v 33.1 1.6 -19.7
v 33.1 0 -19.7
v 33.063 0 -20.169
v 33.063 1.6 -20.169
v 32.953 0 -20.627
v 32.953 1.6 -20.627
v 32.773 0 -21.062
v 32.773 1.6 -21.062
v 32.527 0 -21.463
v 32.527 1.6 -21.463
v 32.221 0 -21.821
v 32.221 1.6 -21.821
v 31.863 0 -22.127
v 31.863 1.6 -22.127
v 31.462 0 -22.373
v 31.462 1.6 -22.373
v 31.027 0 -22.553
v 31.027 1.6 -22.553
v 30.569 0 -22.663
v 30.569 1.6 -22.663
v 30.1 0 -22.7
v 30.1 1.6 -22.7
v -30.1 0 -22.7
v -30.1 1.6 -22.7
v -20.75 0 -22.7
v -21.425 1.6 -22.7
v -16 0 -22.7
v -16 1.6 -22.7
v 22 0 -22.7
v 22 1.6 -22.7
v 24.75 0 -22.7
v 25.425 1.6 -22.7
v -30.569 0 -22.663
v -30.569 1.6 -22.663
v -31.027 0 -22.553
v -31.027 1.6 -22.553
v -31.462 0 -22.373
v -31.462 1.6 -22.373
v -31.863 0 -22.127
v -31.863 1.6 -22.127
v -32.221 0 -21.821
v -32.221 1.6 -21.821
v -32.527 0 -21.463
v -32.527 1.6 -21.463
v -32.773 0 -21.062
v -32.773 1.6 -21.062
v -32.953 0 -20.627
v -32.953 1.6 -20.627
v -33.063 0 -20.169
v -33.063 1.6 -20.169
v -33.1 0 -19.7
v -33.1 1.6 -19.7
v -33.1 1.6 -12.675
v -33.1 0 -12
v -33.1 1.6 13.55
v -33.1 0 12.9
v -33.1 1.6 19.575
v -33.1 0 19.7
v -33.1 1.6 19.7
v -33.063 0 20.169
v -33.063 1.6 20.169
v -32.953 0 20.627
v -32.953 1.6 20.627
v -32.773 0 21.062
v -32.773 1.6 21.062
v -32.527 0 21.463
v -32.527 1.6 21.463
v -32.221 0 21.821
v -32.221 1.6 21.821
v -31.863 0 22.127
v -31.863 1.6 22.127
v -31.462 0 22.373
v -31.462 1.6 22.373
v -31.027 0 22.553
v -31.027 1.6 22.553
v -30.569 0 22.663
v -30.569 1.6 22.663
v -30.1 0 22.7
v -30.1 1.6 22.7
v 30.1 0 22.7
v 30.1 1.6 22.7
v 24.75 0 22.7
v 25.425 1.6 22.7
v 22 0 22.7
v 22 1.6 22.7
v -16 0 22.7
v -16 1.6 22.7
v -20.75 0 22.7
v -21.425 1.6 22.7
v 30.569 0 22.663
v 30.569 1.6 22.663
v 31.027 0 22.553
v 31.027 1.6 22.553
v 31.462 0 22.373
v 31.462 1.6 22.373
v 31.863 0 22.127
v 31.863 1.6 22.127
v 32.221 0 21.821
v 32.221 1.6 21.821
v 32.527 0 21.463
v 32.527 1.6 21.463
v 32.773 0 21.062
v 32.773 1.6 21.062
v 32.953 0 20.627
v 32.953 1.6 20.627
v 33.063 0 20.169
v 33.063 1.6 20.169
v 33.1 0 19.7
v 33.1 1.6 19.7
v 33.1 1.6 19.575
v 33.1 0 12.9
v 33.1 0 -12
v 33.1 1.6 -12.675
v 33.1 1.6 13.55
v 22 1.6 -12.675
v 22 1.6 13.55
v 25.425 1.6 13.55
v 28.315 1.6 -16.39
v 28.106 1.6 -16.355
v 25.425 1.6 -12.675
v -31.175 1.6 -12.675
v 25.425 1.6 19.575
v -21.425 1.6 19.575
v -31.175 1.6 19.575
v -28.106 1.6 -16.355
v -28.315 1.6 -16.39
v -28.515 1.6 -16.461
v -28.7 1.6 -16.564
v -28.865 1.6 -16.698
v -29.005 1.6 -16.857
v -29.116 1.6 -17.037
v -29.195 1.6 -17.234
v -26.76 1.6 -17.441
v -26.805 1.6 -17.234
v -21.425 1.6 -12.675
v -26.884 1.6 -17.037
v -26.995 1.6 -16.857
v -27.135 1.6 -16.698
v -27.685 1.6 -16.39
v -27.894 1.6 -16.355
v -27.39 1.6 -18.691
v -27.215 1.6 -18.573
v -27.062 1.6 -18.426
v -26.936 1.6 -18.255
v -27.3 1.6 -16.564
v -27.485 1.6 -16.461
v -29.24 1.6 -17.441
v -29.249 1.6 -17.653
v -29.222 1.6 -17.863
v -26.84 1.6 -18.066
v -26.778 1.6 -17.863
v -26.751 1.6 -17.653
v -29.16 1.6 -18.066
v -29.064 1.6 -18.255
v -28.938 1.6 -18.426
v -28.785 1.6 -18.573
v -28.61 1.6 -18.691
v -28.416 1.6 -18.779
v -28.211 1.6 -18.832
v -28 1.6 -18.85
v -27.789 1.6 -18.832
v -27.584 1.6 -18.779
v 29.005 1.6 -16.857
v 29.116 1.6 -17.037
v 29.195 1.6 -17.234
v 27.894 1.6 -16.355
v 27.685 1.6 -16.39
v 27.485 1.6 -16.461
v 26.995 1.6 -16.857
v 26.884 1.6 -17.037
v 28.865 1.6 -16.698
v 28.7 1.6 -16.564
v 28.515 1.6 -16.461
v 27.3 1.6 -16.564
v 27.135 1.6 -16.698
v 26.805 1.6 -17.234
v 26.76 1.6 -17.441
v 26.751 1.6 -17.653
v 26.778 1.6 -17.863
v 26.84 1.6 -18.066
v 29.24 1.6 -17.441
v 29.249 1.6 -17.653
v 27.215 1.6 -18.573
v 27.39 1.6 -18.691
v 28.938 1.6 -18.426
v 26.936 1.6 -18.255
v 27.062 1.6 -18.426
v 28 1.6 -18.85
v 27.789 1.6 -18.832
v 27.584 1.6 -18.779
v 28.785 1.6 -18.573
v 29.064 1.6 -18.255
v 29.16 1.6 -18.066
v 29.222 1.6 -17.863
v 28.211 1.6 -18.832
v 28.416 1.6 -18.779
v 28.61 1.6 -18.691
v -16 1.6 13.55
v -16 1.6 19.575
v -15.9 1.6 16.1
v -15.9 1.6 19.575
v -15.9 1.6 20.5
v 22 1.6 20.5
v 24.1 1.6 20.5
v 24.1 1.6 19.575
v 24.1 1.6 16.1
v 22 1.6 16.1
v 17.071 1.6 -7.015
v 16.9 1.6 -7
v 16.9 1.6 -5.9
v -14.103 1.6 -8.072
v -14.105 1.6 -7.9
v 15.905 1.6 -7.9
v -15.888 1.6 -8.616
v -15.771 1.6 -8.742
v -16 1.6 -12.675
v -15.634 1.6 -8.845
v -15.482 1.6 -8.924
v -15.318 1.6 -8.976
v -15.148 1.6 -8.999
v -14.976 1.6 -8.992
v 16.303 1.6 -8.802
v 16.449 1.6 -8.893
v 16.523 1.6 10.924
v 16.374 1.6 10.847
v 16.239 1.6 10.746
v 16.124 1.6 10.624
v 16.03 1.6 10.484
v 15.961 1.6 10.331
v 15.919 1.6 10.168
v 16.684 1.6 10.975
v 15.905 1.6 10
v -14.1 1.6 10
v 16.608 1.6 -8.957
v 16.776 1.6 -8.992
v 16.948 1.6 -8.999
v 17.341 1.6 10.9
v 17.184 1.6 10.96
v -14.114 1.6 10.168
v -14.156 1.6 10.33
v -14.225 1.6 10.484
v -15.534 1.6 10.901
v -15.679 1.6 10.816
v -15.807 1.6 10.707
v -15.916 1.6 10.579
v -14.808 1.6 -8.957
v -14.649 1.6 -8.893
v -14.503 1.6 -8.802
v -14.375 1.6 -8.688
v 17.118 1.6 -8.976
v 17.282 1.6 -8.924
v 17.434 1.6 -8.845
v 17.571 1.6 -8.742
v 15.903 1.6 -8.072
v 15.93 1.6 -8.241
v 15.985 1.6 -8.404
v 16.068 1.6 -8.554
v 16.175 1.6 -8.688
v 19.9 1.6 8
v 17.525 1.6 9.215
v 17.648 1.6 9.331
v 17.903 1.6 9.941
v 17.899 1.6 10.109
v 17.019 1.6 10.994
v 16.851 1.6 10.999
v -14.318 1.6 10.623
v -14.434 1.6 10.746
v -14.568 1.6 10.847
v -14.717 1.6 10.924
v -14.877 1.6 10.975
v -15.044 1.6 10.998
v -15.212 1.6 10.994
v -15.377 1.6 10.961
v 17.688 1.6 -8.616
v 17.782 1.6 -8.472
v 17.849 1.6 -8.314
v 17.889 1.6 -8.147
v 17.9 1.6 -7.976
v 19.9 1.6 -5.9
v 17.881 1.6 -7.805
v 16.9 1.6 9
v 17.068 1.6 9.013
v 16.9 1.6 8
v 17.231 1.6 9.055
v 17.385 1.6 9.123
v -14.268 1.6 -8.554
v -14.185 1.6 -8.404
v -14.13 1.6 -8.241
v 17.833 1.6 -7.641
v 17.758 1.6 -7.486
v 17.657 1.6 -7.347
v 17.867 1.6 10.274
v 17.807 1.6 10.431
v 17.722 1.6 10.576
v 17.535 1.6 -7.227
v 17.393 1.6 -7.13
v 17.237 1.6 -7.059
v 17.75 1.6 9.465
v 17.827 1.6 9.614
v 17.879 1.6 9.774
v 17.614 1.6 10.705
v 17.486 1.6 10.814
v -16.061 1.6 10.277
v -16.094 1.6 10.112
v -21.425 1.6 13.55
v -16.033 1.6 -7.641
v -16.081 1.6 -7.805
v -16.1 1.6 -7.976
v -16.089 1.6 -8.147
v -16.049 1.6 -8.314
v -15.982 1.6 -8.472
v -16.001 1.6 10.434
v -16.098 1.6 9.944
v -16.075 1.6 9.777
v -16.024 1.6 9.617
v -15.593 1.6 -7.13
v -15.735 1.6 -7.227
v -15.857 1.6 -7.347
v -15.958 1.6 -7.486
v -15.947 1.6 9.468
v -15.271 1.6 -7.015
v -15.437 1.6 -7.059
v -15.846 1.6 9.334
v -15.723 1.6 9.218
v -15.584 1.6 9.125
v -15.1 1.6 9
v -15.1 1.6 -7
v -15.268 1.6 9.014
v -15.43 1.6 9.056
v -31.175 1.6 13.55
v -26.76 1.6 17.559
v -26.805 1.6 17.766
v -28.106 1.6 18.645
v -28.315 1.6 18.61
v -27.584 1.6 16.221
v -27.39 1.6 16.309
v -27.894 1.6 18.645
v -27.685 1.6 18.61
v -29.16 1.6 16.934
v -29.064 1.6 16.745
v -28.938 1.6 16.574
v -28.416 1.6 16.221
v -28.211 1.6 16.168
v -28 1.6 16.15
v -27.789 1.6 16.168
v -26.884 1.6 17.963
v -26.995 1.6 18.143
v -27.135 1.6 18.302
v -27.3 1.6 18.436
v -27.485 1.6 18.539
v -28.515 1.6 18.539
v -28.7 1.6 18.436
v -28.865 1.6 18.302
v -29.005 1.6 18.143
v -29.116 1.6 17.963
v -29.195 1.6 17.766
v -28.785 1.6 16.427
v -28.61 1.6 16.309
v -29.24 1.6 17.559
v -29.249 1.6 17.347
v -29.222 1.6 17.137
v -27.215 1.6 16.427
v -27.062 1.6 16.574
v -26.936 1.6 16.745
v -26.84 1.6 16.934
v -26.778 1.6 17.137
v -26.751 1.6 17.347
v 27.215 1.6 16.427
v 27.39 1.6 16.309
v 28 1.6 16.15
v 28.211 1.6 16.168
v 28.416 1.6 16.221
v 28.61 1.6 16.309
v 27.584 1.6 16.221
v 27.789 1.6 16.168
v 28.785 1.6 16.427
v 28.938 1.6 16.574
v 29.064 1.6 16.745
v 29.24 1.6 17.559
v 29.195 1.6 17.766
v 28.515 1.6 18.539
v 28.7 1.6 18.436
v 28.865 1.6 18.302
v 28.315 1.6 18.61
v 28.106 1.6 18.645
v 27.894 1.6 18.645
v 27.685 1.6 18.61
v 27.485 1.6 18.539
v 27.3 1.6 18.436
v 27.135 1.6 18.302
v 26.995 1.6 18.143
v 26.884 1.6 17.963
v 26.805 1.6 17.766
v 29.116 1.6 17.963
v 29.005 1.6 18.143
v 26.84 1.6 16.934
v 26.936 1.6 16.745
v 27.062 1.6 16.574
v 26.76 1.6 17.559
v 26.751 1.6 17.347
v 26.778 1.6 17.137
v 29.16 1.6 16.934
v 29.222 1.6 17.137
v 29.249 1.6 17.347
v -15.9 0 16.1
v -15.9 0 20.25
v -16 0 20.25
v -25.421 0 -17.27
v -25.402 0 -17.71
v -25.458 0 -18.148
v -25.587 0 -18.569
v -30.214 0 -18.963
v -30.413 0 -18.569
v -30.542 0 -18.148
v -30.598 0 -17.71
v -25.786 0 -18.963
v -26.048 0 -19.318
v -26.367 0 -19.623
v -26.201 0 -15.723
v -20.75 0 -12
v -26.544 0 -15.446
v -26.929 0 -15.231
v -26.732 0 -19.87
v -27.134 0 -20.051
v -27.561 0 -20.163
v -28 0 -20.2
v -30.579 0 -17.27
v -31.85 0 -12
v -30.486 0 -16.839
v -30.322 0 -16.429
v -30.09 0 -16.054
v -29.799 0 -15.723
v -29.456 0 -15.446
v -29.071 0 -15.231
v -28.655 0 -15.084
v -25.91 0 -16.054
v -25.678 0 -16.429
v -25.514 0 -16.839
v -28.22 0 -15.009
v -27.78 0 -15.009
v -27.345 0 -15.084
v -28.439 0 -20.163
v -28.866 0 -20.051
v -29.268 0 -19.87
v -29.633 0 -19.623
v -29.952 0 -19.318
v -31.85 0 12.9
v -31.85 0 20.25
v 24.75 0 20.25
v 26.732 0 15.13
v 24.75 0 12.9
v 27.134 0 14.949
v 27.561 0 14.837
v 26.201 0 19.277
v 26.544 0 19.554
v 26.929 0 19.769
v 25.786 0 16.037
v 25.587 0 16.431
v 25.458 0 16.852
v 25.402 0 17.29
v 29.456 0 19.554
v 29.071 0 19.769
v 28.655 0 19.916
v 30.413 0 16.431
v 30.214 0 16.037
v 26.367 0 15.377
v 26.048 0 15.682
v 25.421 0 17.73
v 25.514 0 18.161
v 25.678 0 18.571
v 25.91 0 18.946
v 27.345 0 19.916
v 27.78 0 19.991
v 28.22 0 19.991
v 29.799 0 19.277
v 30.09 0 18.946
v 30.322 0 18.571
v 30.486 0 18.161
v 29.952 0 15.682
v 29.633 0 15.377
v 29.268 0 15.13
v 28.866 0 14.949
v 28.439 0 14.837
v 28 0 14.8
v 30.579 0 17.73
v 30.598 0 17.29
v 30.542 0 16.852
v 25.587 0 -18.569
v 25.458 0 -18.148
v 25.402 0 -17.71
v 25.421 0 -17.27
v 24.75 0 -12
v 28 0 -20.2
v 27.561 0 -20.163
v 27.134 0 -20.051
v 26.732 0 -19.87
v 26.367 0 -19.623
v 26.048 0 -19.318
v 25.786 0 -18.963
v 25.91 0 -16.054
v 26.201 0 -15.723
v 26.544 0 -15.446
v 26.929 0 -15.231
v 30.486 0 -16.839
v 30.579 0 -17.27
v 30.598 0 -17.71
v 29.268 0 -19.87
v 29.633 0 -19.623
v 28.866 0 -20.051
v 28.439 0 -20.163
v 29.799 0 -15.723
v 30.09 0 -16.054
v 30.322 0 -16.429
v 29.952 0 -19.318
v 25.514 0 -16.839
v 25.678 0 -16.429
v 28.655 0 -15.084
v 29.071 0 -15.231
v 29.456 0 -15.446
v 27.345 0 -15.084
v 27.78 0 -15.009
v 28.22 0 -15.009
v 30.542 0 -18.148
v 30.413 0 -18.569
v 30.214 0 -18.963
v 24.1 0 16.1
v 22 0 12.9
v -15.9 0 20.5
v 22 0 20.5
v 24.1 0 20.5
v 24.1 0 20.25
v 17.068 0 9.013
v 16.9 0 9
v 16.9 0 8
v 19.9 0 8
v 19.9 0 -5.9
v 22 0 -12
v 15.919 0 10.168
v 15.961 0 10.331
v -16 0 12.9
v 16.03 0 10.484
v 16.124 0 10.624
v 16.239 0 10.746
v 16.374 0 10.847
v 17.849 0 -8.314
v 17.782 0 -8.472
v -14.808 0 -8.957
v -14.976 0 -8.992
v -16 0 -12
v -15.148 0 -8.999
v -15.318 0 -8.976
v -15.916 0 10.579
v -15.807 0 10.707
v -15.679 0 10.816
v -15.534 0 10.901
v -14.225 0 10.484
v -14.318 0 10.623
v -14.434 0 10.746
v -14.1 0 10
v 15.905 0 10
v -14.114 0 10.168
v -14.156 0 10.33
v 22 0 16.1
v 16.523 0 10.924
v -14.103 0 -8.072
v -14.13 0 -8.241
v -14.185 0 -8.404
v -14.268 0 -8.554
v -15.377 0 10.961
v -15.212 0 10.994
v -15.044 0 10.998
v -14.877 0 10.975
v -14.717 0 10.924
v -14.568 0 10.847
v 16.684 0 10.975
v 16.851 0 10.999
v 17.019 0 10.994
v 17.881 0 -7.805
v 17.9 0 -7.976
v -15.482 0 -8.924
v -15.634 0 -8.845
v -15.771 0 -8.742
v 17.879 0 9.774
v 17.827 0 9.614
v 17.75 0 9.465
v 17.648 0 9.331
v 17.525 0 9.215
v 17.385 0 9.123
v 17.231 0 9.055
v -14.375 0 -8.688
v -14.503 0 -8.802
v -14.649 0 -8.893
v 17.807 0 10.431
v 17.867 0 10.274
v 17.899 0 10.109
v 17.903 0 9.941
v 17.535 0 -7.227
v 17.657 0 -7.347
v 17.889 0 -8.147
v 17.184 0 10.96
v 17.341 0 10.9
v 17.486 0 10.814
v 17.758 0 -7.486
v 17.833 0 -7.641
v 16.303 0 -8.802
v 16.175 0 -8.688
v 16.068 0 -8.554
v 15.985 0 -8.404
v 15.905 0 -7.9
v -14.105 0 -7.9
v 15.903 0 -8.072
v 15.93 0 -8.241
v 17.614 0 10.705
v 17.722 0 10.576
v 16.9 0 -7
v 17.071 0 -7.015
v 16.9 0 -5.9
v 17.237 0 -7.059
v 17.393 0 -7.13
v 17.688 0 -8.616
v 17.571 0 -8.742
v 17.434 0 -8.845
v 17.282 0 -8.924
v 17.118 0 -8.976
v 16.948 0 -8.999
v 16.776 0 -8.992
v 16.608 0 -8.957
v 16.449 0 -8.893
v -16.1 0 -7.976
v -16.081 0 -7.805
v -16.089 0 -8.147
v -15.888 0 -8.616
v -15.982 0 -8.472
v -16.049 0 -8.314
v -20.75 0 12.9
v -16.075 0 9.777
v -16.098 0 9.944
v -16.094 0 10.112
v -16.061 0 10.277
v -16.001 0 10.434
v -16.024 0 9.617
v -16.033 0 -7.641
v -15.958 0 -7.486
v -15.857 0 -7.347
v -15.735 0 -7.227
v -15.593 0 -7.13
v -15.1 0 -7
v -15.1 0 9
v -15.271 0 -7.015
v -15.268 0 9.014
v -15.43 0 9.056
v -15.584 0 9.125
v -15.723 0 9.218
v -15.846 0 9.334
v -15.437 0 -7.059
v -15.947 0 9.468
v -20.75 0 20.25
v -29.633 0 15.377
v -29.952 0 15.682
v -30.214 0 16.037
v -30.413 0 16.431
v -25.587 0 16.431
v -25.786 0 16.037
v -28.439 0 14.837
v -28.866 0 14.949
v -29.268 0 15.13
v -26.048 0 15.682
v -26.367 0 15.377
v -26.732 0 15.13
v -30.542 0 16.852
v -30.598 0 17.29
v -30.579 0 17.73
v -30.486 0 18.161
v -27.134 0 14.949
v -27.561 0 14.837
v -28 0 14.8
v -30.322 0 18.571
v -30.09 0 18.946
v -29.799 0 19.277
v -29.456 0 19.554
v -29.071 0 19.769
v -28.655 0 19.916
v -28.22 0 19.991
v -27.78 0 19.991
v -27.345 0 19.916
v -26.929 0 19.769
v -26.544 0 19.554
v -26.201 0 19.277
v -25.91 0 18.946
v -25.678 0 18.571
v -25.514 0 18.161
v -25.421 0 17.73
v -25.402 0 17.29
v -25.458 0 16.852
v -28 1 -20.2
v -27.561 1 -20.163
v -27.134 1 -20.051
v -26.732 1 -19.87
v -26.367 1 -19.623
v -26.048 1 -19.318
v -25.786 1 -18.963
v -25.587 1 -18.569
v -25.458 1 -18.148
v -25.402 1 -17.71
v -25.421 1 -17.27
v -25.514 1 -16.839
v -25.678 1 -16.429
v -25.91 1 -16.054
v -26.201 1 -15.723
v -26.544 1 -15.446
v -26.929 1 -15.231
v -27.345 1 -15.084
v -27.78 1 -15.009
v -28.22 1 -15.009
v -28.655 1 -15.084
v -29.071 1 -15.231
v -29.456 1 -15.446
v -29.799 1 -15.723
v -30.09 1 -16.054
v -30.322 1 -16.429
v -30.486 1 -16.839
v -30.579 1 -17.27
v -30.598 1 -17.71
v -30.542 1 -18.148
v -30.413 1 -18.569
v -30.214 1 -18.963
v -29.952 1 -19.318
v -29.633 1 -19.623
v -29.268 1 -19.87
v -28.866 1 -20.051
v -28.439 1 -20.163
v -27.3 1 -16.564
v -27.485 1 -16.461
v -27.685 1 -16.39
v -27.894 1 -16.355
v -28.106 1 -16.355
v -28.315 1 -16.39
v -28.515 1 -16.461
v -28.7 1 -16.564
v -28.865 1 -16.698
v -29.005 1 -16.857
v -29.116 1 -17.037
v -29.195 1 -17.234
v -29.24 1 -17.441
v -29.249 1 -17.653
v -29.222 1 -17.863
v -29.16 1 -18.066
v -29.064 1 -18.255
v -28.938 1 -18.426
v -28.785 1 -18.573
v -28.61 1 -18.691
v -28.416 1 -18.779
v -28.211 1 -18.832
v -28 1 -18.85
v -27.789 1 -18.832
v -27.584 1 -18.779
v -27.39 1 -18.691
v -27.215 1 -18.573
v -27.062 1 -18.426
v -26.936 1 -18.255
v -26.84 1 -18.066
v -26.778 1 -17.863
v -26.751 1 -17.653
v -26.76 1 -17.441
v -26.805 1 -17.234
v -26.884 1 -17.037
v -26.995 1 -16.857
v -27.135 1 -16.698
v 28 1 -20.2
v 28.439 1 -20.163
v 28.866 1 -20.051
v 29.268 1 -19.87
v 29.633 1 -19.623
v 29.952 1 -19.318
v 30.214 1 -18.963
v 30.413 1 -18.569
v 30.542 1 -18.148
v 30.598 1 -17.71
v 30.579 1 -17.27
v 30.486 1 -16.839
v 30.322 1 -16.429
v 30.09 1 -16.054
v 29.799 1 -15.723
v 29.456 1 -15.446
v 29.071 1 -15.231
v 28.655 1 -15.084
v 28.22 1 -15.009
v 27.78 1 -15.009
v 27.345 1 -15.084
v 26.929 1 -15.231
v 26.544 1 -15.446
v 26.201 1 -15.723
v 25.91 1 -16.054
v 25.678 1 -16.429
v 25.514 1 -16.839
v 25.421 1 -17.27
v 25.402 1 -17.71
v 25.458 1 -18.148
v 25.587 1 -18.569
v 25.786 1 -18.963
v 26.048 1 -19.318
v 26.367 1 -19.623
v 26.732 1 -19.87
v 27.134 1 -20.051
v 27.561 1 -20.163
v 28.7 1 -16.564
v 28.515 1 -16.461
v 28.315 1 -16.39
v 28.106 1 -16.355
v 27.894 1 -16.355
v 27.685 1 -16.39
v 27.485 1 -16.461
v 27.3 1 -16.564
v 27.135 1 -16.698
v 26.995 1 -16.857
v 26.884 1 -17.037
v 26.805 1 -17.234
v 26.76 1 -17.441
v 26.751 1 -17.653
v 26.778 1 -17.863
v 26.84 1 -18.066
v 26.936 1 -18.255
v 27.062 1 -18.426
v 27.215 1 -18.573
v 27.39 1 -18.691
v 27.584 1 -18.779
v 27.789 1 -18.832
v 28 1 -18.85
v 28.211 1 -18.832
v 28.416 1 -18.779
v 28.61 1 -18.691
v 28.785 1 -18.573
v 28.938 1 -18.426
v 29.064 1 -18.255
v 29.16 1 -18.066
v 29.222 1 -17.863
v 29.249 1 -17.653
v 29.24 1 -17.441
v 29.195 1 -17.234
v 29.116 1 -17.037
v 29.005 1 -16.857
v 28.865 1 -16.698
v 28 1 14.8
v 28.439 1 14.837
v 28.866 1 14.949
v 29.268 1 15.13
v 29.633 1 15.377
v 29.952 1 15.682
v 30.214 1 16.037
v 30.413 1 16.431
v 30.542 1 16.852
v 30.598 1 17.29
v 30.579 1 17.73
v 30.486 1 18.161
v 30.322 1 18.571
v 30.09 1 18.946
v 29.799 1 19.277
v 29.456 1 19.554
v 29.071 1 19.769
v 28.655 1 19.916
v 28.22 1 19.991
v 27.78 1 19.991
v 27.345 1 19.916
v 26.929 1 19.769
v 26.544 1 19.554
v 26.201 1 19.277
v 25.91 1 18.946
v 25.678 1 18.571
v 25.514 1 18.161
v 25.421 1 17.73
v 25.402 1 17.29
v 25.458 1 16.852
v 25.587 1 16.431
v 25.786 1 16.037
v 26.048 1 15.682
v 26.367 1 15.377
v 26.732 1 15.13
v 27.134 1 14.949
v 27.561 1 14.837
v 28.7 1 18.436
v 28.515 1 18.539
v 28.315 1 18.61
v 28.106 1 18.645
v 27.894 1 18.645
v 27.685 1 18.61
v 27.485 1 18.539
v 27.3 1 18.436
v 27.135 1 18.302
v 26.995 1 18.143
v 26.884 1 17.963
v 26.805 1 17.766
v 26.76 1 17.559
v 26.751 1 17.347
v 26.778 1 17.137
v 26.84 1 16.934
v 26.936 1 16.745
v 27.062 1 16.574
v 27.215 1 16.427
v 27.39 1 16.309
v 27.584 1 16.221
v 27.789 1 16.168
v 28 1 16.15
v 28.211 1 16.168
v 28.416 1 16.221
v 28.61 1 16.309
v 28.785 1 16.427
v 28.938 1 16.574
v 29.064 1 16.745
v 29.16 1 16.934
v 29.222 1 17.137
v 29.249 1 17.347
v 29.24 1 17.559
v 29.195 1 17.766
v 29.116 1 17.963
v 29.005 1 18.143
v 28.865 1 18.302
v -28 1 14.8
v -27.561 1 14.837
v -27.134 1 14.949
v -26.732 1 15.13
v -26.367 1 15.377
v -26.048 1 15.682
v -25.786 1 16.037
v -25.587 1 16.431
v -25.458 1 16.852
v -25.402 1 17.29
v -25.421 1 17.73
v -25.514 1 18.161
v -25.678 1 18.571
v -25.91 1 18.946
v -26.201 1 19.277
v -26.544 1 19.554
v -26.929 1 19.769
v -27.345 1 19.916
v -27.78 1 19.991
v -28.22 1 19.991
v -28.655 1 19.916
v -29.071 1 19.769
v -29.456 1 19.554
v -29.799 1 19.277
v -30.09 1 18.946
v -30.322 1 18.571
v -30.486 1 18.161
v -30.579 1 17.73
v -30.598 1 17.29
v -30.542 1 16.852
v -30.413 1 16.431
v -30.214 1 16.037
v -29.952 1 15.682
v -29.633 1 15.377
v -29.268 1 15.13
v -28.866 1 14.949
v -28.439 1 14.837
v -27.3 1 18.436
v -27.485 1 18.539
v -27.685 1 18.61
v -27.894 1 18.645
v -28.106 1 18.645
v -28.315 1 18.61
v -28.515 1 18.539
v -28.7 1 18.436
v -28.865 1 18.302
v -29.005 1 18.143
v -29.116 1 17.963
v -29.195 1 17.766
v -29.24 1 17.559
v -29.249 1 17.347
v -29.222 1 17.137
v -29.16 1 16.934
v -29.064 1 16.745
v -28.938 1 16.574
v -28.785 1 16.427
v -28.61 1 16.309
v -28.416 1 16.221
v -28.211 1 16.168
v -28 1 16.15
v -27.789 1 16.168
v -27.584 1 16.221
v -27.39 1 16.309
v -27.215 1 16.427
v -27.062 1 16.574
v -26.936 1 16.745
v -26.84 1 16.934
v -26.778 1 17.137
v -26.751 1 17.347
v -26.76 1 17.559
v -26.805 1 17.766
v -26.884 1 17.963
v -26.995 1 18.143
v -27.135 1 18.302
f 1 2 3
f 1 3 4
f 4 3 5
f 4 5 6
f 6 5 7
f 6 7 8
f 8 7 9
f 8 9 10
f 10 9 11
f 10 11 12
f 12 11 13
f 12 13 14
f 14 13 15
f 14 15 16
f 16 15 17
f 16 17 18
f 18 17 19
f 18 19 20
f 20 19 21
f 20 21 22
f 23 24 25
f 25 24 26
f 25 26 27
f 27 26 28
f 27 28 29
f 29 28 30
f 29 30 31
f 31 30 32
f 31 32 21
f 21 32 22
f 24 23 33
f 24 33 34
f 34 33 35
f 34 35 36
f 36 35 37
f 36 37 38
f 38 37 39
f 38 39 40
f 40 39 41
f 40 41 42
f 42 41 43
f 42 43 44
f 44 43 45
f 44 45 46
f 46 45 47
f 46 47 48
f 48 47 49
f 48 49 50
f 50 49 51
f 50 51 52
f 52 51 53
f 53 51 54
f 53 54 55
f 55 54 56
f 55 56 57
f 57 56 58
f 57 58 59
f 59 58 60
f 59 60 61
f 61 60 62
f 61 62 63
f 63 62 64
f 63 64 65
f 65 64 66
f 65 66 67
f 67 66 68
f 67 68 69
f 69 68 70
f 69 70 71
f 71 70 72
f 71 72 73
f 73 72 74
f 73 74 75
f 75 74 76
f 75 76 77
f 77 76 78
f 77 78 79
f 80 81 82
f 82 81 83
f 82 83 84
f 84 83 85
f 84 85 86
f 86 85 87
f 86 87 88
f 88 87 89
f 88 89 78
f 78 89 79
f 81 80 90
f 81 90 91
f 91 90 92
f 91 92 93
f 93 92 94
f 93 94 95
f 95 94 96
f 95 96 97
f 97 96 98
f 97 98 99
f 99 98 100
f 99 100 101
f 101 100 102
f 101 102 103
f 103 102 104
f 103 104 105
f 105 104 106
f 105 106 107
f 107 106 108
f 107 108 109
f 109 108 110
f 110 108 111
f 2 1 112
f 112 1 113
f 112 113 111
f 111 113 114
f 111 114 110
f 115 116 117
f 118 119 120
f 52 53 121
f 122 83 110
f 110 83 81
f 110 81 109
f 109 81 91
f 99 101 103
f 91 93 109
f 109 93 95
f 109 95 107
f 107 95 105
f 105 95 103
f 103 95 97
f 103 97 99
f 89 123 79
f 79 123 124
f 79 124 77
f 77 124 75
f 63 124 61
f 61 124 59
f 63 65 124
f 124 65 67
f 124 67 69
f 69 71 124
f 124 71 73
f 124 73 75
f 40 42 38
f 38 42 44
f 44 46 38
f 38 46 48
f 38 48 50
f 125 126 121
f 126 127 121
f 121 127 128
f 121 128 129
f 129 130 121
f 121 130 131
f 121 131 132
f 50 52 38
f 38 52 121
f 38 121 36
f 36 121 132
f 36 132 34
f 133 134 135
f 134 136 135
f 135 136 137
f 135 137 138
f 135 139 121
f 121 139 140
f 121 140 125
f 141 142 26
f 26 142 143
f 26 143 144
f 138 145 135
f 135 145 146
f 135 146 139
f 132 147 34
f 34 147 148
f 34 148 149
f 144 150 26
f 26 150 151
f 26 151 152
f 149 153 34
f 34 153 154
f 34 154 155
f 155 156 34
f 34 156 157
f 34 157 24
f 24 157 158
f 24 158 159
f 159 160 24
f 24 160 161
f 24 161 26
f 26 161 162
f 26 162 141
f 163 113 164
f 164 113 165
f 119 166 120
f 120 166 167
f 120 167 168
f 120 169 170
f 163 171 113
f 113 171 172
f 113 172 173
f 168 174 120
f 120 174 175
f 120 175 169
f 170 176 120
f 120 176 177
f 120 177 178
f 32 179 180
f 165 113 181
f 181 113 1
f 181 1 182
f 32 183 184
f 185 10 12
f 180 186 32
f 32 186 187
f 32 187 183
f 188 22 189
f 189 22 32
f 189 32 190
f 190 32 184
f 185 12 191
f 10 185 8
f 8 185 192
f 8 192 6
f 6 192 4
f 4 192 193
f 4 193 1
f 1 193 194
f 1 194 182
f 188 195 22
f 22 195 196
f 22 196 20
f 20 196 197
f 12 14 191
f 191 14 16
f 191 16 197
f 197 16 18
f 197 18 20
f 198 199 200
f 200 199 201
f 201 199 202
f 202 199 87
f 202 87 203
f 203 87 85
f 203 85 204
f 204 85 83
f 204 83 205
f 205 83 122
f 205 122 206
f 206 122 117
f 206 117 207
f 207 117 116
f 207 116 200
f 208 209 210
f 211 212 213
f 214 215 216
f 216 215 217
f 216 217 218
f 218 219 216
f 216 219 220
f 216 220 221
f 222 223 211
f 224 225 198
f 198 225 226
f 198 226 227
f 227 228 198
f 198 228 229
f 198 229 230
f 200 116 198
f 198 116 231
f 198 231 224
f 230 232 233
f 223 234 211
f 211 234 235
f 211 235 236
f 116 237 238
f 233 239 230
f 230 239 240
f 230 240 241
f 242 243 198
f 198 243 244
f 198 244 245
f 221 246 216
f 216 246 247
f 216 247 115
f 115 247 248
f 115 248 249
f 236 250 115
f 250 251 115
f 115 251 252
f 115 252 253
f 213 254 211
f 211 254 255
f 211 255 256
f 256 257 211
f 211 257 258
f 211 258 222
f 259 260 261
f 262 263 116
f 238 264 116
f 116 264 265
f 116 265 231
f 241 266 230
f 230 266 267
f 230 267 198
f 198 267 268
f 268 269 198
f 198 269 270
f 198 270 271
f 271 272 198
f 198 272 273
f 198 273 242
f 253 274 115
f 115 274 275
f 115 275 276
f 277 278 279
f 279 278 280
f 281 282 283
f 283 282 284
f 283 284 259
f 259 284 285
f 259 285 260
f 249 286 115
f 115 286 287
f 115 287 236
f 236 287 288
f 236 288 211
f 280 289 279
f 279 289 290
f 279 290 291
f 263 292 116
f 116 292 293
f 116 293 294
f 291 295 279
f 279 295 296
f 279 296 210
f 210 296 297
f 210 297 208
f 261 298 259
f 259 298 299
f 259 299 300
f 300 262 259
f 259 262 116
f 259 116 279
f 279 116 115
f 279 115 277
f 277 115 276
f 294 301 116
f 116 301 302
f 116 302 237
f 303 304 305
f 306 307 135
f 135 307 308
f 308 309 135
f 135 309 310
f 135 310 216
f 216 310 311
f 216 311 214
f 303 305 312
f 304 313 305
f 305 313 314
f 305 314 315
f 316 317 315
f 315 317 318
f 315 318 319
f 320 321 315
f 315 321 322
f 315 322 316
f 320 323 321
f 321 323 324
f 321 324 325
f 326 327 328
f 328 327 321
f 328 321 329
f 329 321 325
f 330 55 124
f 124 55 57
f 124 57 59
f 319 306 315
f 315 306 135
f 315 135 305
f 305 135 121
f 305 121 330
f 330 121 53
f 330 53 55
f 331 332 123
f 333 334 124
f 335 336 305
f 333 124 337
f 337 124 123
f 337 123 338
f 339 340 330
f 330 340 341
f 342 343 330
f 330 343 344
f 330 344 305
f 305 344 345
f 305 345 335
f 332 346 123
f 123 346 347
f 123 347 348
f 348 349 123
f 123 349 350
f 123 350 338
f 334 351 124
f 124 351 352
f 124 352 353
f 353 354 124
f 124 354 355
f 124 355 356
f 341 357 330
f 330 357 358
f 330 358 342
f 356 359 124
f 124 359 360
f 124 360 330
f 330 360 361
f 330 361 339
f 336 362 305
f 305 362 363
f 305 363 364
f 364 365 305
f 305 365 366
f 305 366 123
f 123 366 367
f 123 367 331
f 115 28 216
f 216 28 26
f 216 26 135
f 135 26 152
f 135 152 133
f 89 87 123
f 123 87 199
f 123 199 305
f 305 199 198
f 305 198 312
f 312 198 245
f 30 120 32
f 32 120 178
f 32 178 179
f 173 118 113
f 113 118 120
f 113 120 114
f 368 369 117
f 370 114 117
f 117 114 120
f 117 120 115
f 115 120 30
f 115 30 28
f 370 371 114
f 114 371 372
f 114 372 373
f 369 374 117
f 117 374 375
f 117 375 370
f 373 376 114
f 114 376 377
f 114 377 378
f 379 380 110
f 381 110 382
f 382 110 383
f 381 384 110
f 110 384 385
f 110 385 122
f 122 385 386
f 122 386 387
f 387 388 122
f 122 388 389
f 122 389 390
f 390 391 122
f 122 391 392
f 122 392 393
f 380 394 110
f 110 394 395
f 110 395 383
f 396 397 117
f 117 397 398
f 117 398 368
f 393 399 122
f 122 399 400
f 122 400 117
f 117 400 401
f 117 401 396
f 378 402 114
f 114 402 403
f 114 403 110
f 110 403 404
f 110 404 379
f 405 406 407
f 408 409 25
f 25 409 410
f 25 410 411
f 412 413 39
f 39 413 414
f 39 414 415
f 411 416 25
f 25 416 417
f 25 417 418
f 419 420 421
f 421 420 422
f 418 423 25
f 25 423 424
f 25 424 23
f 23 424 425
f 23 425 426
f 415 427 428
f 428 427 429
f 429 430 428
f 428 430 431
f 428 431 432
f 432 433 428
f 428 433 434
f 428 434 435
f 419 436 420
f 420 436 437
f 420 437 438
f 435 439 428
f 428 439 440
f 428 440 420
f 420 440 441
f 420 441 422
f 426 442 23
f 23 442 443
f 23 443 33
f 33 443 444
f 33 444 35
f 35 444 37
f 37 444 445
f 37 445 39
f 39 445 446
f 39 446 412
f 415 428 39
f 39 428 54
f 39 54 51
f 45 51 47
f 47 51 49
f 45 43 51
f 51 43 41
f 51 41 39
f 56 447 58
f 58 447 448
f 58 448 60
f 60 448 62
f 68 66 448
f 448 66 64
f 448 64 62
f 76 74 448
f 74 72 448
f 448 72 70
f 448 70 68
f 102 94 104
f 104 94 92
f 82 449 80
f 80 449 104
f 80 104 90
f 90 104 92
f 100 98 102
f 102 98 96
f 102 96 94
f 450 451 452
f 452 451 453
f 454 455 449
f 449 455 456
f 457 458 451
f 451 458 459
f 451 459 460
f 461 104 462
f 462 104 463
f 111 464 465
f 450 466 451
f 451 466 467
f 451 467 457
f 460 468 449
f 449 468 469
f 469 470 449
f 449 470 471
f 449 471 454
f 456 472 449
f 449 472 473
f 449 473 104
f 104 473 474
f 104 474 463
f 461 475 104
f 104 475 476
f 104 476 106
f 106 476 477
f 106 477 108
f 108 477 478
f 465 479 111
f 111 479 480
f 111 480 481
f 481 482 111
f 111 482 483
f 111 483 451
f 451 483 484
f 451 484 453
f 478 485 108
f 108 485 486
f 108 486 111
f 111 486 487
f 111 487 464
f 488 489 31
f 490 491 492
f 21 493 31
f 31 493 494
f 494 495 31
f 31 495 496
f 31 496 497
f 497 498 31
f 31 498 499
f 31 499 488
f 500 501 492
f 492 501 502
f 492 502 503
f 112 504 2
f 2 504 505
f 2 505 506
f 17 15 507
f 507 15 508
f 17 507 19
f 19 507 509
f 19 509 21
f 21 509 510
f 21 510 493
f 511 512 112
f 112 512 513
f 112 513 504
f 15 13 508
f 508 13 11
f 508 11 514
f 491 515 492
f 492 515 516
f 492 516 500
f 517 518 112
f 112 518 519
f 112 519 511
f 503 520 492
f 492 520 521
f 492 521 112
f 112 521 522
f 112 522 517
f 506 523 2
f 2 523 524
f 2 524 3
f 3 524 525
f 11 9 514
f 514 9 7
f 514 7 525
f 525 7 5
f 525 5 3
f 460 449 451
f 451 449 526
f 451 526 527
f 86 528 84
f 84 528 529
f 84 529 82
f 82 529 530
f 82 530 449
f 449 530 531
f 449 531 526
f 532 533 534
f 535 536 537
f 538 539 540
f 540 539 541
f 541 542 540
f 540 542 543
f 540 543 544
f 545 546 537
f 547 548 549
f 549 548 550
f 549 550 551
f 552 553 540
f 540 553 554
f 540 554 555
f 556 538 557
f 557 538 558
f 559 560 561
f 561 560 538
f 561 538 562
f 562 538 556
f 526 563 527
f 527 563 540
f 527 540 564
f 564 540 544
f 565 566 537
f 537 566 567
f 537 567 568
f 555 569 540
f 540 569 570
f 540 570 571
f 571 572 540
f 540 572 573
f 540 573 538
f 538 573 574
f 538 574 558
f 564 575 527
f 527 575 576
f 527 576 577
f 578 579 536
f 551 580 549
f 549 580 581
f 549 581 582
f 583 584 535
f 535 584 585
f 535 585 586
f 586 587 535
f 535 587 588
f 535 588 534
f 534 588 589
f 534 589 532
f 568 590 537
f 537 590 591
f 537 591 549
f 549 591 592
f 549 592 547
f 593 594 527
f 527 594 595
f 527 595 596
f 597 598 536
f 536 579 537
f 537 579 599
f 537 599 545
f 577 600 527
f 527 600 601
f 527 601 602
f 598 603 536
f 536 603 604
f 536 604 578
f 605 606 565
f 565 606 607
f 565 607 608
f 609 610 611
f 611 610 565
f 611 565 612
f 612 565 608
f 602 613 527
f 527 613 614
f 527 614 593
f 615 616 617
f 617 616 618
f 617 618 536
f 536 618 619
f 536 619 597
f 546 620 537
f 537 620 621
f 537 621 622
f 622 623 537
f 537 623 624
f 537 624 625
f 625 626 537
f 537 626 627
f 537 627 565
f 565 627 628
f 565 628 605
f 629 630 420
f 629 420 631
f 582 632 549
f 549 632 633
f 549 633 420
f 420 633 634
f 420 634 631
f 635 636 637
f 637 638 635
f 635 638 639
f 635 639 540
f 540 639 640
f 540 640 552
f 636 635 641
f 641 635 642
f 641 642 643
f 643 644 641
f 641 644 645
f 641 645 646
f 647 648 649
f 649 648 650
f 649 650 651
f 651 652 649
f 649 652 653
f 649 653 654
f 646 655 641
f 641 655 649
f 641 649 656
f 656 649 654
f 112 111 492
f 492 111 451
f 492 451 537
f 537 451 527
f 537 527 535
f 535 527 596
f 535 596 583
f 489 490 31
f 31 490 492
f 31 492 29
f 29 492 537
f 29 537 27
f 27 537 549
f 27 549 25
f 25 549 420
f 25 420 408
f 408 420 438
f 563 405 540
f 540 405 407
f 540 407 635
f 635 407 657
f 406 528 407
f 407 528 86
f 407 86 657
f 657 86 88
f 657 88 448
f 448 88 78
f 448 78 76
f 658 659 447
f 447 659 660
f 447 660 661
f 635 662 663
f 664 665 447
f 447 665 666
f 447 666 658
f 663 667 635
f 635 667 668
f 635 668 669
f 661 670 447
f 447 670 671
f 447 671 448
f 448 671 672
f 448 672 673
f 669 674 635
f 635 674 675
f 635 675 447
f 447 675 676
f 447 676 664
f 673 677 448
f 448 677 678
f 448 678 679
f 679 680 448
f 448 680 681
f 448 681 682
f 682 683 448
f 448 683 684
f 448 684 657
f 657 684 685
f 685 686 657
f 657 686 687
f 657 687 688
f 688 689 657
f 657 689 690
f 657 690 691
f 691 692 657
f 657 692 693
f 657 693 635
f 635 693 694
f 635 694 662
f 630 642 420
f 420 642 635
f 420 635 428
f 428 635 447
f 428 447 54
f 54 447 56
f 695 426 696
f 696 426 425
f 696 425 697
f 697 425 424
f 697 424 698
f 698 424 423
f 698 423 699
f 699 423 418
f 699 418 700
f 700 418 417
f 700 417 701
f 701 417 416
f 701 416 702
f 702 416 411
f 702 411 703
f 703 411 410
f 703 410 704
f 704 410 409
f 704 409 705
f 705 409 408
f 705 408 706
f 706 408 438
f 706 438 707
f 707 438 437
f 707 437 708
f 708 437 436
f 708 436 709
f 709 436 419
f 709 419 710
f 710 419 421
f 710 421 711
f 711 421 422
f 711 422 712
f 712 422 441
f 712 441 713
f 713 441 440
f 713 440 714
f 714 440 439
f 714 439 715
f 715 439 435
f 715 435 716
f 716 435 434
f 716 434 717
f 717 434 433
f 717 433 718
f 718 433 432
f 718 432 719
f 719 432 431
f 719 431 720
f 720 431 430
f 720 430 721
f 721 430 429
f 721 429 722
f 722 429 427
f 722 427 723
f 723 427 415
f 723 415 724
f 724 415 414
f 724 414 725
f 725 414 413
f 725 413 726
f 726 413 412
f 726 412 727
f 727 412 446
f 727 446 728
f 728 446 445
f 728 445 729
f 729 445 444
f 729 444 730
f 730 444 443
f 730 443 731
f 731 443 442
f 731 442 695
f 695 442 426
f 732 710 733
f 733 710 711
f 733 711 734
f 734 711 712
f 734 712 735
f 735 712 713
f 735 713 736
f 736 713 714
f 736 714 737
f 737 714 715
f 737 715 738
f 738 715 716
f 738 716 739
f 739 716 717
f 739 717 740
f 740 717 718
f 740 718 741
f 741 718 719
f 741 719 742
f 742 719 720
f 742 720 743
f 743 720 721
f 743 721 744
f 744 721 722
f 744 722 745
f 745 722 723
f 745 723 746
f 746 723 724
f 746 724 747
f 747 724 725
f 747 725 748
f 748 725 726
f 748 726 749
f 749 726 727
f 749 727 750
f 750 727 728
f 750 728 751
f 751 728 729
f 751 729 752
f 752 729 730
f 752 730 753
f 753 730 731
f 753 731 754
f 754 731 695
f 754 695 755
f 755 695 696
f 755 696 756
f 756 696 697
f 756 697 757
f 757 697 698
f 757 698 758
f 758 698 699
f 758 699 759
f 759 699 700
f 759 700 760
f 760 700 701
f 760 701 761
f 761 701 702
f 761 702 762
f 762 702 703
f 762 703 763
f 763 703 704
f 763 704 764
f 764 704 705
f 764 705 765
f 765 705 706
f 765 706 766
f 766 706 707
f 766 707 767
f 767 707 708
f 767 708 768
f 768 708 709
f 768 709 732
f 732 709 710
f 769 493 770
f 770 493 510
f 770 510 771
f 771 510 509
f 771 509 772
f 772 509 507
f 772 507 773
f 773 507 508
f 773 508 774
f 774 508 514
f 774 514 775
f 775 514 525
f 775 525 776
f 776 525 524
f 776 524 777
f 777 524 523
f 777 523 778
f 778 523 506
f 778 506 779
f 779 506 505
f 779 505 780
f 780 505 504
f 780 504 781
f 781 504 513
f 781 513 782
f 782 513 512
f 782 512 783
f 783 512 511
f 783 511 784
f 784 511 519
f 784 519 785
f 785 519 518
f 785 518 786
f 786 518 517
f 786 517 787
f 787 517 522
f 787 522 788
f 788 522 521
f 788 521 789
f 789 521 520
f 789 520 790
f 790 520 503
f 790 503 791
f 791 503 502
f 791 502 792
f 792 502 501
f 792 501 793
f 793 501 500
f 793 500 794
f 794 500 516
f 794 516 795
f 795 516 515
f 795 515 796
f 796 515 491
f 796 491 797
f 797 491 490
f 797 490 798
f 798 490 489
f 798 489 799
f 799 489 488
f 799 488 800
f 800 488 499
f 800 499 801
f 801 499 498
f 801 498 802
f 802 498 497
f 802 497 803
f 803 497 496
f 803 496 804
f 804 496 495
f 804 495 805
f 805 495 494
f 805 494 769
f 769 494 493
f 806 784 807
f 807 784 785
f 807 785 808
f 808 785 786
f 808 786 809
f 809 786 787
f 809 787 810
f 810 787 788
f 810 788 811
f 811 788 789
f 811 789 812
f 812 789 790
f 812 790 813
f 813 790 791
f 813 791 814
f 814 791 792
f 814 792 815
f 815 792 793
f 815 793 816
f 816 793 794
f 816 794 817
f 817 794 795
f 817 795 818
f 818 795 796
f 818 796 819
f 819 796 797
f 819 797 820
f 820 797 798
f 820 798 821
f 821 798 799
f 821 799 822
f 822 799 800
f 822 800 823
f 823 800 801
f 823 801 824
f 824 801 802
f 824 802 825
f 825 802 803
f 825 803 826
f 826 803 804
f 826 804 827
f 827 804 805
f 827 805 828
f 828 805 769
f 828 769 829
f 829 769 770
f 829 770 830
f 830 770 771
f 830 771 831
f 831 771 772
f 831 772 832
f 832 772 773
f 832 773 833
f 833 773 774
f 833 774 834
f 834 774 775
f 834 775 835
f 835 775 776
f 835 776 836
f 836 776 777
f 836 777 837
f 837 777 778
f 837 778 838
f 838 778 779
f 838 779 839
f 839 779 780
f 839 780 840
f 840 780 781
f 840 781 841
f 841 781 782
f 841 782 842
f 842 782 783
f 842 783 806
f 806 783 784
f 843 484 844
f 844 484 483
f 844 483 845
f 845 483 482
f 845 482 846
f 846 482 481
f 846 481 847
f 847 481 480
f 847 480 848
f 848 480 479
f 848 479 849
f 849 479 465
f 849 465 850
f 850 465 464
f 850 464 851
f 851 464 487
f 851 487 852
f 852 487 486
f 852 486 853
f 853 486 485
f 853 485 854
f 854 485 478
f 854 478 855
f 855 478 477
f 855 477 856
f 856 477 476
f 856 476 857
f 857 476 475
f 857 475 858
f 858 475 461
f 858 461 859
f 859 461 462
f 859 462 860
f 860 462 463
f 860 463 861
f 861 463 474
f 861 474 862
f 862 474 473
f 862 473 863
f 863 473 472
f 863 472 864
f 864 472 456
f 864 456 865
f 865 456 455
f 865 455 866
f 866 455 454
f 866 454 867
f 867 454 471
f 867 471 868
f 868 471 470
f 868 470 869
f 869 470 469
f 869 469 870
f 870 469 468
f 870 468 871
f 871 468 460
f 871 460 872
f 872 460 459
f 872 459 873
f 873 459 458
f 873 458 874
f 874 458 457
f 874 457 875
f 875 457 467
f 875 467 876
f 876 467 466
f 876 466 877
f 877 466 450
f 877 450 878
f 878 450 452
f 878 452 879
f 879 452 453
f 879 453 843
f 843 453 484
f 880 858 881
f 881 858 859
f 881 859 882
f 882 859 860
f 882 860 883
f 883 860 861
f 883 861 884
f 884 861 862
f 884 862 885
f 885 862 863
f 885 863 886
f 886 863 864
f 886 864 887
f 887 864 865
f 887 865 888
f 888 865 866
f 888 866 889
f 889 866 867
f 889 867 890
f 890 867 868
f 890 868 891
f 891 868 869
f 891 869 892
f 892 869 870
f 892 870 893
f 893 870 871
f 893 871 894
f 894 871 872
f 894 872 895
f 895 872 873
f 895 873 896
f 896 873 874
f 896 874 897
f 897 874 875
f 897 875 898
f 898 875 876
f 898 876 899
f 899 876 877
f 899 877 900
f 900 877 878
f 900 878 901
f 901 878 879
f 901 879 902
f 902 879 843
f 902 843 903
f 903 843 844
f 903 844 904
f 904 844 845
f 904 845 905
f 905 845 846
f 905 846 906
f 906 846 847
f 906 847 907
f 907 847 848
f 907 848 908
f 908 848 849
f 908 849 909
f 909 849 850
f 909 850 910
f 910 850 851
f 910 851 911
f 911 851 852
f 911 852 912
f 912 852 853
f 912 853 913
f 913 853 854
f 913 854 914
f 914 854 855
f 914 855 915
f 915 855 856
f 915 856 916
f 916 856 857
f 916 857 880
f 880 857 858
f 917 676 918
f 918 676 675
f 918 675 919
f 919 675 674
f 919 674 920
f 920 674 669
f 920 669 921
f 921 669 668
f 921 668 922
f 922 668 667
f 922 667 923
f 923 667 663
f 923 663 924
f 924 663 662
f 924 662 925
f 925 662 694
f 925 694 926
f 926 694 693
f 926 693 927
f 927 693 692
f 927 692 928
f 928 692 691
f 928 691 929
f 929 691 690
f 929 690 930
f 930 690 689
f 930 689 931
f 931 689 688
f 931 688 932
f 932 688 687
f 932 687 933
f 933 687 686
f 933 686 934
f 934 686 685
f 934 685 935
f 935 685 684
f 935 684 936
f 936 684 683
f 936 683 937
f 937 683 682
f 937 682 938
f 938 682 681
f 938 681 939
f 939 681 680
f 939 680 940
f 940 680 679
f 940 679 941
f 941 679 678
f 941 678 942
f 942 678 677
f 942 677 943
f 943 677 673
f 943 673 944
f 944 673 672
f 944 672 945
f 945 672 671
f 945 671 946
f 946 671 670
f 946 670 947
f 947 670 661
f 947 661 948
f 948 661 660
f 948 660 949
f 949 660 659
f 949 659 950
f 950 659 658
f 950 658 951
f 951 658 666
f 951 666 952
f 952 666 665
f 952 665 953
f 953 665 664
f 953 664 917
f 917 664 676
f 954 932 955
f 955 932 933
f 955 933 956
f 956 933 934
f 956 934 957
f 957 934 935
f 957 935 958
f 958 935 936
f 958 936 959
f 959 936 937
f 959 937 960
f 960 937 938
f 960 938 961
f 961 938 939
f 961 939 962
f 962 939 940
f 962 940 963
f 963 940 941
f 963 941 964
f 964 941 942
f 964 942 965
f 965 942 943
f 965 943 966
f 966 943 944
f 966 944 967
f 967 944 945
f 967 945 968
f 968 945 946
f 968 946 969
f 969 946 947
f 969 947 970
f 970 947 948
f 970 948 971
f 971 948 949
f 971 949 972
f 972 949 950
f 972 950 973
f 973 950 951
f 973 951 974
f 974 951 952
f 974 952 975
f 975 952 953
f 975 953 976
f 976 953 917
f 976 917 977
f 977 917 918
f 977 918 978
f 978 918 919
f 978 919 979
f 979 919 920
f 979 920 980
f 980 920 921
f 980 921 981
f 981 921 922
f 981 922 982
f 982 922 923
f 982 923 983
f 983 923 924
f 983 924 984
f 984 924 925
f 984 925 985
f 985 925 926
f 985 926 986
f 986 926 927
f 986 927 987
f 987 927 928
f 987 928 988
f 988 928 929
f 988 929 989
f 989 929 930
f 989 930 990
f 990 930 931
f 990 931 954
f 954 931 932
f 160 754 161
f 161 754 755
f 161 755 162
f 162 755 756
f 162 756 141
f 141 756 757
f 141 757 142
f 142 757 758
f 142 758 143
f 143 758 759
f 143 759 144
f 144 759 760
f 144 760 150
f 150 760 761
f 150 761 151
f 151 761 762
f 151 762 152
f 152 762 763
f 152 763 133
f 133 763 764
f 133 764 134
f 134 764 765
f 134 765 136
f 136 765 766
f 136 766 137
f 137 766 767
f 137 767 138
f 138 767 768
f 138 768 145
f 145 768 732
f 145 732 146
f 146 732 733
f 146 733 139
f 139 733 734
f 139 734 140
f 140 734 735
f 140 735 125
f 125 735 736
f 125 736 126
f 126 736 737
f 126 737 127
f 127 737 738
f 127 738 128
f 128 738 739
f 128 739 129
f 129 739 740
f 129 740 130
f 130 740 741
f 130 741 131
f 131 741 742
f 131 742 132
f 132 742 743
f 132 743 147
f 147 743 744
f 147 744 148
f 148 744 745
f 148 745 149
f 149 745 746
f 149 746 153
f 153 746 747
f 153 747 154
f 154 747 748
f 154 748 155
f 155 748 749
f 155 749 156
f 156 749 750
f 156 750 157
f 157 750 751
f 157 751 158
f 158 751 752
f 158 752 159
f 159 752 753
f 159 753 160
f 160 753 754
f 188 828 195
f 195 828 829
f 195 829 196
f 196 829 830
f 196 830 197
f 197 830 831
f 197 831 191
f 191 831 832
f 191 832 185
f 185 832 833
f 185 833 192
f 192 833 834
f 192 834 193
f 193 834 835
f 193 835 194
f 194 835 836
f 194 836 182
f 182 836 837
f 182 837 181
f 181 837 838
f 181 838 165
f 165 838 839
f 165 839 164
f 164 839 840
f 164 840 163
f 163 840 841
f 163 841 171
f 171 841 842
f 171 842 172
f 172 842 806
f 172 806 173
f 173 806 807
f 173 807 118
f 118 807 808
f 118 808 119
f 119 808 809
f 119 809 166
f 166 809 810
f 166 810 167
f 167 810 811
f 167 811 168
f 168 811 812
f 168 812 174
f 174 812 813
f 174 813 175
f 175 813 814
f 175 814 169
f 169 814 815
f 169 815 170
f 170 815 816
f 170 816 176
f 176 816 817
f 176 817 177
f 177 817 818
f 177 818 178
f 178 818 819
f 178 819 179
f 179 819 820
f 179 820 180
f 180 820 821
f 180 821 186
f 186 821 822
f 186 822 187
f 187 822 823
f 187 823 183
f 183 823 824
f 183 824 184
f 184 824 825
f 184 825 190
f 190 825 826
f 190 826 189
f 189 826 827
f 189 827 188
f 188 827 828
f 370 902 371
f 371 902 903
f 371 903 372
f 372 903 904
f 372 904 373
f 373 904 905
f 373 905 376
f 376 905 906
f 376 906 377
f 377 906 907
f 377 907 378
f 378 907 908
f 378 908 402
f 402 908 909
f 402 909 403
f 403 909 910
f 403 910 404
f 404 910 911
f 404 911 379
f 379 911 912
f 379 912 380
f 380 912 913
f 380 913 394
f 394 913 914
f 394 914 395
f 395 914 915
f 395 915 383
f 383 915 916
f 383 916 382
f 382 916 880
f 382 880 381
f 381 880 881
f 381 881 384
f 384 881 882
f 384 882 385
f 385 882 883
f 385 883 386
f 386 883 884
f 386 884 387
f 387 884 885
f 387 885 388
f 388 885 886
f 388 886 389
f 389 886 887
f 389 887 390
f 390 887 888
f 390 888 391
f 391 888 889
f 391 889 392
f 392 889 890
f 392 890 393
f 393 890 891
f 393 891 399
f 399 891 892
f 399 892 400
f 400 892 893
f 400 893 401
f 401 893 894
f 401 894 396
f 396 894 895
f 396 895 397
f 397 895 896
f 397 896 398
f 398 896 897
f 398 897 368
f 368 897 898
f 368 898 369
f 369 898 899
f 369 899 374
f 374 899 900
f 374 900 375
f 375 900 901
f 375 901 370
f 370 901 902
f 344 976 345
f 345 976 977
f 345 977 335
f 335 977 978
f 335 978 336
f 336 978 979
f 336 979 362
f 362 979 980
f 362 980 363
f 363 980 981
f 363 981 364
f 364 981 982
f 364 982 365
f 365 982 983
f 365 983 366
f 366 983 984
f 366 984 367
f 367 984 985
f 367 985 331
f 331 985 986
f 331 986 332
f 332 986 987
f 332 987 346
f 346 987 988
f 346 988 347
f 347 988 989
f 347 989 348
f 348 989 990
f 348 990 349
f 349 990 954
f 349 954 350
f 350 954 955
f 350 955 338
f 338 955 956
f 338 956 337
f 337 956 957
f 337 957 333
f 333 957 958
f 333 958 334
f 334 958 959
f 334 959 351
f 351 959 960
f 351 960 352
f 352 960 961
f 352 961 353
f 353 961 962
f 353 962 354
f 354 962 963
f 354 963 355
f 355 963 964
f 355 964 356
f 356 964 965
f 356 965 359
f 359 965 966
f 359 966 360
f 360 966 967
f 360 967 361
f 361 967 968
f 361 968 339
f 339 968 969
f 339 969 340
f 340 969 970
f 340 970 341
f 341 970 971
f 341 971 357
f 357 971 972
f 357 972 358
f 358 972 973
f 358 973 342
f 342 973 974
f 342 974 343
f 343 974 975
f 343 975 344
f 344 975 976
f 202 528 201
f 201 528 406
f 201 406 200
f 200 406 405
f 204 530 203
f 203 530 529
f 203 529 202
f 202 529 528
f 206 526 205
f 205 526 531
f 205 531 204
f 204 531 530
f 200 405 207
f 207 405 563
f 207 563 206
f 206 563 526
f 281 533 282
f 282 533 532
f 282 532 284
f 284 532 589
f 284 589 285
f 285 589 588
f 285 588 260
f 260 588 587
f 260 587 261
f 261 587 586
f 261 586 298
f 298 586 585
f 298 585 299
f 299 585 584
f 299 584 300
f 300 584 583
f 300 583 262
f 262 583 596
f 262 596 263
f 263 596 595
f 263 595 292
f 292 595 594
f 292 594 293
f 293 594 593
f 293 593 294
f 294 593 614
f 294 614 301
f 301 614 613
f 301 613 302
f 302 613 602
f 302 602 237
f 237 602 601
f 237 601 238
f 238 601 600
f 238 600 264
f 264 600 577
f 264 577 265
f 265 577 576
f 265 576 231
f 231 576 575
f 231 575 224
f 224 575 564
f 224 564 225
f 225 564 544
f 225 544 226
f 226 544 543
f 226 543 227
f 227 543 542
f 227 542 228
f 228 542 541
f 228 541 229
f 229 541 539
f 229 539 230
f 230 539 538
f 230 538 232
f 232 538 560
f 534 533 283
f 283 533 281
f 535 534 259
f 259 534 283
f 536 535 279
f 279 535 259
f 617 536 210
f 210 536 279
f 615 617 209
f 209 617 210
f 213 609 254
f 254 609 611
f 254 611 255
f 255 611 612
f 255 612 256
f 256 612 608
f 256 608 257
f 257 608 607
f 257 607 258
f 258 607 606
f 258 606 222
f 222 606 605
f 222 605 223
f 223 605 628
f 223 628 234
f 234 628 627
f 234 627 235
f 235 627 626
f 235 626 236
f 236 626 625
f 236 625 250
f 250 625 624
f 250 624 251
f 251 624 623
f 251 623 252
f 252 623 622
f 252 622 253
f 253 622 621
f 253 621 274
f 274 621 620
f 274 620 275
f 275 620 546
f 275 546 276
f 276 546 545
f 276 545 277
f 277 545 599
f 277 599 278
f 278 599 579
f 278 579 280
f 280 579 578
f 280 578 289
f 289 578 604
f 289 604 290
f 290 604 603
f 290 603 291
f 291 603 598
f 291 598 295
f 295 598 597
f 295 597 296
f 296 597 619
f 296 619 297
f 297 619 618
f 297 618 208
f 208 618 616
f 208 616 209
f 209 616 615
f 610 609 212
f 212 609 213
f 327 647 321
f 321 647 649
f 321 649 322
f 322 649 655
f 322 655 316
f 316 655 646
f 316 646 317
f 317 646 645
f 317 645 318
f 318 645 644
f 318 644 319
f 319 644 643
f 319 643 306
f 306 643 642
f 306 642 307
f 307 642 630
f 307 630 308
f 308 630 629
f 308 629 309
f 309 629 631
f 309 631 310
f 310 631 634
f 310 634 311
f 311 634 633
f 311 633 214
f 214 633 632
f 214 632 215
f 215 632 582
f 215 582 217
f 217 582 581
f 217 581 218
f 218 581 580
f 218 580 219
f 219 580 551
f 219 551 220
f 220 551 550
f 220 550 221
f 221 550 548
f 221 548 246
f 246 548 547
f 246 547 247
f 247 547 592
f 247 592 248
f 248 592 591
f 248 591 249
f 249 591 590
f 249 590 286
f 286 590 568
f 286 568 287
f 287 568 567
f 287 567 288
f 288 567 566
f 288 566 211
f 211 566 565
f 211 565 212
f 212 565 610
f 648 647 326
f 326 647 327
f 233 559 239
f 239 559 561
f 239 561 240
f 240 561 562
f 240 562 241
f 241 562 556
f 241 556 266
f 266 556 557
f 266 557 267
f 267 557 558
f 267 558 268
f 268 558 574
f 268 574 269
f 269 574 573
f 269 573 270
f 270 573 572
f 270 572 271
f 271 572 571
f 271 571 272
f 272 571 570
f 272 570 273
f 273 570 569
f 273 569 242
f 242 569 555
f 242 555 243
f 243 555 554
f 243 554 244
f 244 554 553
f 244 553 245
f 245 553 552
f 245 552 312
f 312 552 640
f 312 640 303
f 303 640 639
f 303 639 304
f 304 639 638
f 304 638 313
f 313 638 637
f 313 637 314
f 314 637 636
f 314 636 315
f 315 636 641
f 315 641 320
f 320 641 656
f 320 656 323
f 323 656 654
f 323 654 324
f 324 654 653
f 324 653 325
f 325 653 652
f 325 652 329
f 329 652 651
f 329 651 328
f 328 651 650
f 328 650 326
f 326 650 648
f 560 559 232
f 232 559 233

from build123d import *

# Parameters (mm, degrees)
EXTRUDE_1_DEPTH       = 1.6
SKETCH_5_R            = 2.6
CUT_EXTRUDE_855_DEPTH = 1
CUT_EXTRUDE_992_REACH = 42.148
SKETCH_7_R            = 1.25
CUT_EXTRUDE_1_REACH   = 42.168
SKETCH_9_W            = 40
SKETCH_9_H            = 4.4


with BuildPart() as part:
    # 草图1 → 凸台-拉伸1 (new body)
    with BuildSketch(Plane(origin=(0, 0, 0), x_dir=(1, 0, 0), z_dir=(0, 1, 0))):
        with BuildLine():
            Line((-30.1, -22.7), (30.1, -22.7))
            ThreePointArc((30.1, -22.7), (32.221320344, -21.821320344), (33.1, -19.7))
            Line((33.1, -19.7), (33.1, 19.7))
            ThreePointArc((33.1, 19.7), (32.221320344, 21.821320344), (30.1, 22.7))
            Line((30.1, 22.7), (-30.1, 22.7))
            ThreePointArc((-30.1, 22.7), (-32.221320344, 21.821320344), (-33.1, 19.7))
            Line((-33.1, 19.7), (-33.1, -19.7))
            ThreePointArc((-33.1, -19.7), (-32.221320344, -21.821320344), (-30.1, -22.7))
        make_face()
    extrude(amount=EXTRUDE_1_DEPTH)

    # 草图5 → Cut-Extrude 855 (cut)
    with BuildSketch(Plane.XZ):
        with Locations(Location((-28, -17.6, 0), (0, 0, 270))):
            Circle(SKETCH_5_R)
        with Locations(Location((28, -17.6, 0), (0, 0, 270))):
            Circle(SKETCH_5_R)
        with Locations(Location((28, 17.4, 0), (0, 0, 270))):
            Circle(SKETCH_5_R)
        with Locations(Location((-28, 17.4, 0), (0, 0, 270))):
            Circle(SKETCH_5_R)
    extrude(amount=-CUT_EXTRUDE_855_DEPTH, mode=Mode.SUBTRACT)

    # 草图7 → Cut-Extrude 992 (cut, up to next)
    with BuildSketch(Plane.XZ.offset(-1), mode=Mode.PRIVATE) as cut_extrude_992_sk1:
        with Locations(Location((-28, -17.6, 0), (0, 0, 270))):
            Circle(SKETCH_7_R)
    cut_extrude_992_tool1 = extrude(cut_extrude_992_sk1.sketch, amount=-CUT_EXTRUDE_992_REACH, mode=Mode.PRIVATE) & part.part
    # 草图7 → Cut-Extrude 992 (cut, up to next)
    with BuildSketch(Plane.XZ.offset(-1), mode=Mode.PRIVATE) as cut_extrude_992_sk2:
        with Locations(Location((28, -17.6, 0), (0, 0, 270))):
            Circle(SKETCH_7_R)
    cut_extrude_992_tool2 = extrude(cut_extrude_992_sk2.sketch, amount=-CUT_EXTRUDE_992_REACH, mode=Mode.PRIVATE) & part.part
    # 草图7 → Cut-Extrude 992 (cut, up to next)
    with BuildSketch(Plane.XZ.offset(-1), mode=Mode.PRIVATE) as cut_extrude_992_sk3:
        with Locations(Location((28, 17.4, 0), (0, 0, 270))):
            Circle(SKETCH_7_R)
    cut_extrude_992_tool3 = extrude(cut_extrude_992_sk3.sketch, amount=-CUT_EXTRUDE_992_REACH, mode=Mode.PRIVATE) & part.part
    # 草图7 → Cut-Extrude 992 (cut, up to next)
    with BuildSketch(Plane.XZ.offset(-1), mode=Mode.PRIVATE) as cut_extrude_992_sk4:
        with Locations(Location((-28, 17.4, 0), (0, 0, 270))):
            Circle(SKETCH_7_R)
    cut_extrude_992_tool4 = extrude(cut_extrude_992_sk4.sketch, amount=-CUT_EXTRUDE_992_REACH, mode=Mode.PRIVATE) & part.part
    add(cut_extrude_992_tool1.solids().sort_by_distance((-28, 1, -17.6))[0], mode=Mode.SUBTRACT)
    add(cut_extrude_992_tool2.solids().sort_by_distance((28, 1, -17.6))[0], mode=Mode.SUBTRACT)
    add(cut_extrude_992_tool3.solids().sort_by_distance((28, 1, 17.4))[0], mode=Mode.SUBTRACT)
    add(cut_extrude_992_tool4.solids().sort_by_distance((-28, 1, 17.4))[0], mode=Mode.SUBTRACT)

    # 草图9 → 切除-拉伸1 (cut, up to next)
    with BuildSketch(Plane(origin=(0, 0, 0), x_dir=(-1, 0, 0), z_dir=(0, -1, 0)), mode=Mode.PRIVATE) as cut_extrude_1_sk1:
        with Locations((-4.1, -18.3)):
            Rectangle(SKETCH_9_W, SKETCH_9_H)
    cut_extrude_1_tool1 = extrude(cut_extrude_1_sk1.sketch, amount=-CUT_EXTRUDE_1_REACH, mode=Mode.PRIVATE) & part.part
    # 草图9 → 切除-拉伸1 (cut, up to next)
    with BuildSketch(Plane(origin=(0, 0, 0), x_dir=(-1, 0, 0), z_dir=(0, -1, 0)), mode=Mode.PRIVATE) as cut_extrude_1_sk2:
        with BuildLine():
            Line((-16.900000063, -8), (-16.900000063, -9.000012563))
            ThreePointArc((-16.900000063, -9.000012563), (-17.613889315, -10.705332368), (-15.905012563, -10))
            Line((-15.905012563, -10), (14.1, -10))
            ThreePointArc((14.1, -10), (15.807106781, -10.707106781), (15.1, -9))
            Line((15.1, -9), (15.1, 7))
            ThreePointArc((15.1, 7), (15.770820393, 8.741619849), (14.105012563, 7.9))
            Line((14.105012563, 7.9), (-15.905012563, 7.9))
            ThreePointArc((-15.905012563, 7.9), (-17.57082037, 8.74161987), (-16.900000063, 7))
            Line((-16.900000063, 7), (-16.900000063, 5.9))
            Line((-16.900000063, 5.9), (-19.900000063, 5.9))
            Line((-19.900000063, 5.9), (-19.900000063, -8))
            Line((-19.900000063, -8), (-16.900000063, -8))
        make_face()
    cut_extrude_1_tool2 = extrude(cut_extrude_1_sk2.sketch, amount=-CUT_EXTRUDE_1_REACH, mode=Mode.PRIVATE) & part.part
    add(cut_extrude_1_tool1.solids().sort_by_distance((4.1, 0, 18.3))[0], mode=Mode.SUBTRACT)
    add(cut_extrude_1_tool2.solids().sort_by_distance((2.069376, 0, 1.046434))[0], mode=Mode.SUBTRACT)


solid = part.part
